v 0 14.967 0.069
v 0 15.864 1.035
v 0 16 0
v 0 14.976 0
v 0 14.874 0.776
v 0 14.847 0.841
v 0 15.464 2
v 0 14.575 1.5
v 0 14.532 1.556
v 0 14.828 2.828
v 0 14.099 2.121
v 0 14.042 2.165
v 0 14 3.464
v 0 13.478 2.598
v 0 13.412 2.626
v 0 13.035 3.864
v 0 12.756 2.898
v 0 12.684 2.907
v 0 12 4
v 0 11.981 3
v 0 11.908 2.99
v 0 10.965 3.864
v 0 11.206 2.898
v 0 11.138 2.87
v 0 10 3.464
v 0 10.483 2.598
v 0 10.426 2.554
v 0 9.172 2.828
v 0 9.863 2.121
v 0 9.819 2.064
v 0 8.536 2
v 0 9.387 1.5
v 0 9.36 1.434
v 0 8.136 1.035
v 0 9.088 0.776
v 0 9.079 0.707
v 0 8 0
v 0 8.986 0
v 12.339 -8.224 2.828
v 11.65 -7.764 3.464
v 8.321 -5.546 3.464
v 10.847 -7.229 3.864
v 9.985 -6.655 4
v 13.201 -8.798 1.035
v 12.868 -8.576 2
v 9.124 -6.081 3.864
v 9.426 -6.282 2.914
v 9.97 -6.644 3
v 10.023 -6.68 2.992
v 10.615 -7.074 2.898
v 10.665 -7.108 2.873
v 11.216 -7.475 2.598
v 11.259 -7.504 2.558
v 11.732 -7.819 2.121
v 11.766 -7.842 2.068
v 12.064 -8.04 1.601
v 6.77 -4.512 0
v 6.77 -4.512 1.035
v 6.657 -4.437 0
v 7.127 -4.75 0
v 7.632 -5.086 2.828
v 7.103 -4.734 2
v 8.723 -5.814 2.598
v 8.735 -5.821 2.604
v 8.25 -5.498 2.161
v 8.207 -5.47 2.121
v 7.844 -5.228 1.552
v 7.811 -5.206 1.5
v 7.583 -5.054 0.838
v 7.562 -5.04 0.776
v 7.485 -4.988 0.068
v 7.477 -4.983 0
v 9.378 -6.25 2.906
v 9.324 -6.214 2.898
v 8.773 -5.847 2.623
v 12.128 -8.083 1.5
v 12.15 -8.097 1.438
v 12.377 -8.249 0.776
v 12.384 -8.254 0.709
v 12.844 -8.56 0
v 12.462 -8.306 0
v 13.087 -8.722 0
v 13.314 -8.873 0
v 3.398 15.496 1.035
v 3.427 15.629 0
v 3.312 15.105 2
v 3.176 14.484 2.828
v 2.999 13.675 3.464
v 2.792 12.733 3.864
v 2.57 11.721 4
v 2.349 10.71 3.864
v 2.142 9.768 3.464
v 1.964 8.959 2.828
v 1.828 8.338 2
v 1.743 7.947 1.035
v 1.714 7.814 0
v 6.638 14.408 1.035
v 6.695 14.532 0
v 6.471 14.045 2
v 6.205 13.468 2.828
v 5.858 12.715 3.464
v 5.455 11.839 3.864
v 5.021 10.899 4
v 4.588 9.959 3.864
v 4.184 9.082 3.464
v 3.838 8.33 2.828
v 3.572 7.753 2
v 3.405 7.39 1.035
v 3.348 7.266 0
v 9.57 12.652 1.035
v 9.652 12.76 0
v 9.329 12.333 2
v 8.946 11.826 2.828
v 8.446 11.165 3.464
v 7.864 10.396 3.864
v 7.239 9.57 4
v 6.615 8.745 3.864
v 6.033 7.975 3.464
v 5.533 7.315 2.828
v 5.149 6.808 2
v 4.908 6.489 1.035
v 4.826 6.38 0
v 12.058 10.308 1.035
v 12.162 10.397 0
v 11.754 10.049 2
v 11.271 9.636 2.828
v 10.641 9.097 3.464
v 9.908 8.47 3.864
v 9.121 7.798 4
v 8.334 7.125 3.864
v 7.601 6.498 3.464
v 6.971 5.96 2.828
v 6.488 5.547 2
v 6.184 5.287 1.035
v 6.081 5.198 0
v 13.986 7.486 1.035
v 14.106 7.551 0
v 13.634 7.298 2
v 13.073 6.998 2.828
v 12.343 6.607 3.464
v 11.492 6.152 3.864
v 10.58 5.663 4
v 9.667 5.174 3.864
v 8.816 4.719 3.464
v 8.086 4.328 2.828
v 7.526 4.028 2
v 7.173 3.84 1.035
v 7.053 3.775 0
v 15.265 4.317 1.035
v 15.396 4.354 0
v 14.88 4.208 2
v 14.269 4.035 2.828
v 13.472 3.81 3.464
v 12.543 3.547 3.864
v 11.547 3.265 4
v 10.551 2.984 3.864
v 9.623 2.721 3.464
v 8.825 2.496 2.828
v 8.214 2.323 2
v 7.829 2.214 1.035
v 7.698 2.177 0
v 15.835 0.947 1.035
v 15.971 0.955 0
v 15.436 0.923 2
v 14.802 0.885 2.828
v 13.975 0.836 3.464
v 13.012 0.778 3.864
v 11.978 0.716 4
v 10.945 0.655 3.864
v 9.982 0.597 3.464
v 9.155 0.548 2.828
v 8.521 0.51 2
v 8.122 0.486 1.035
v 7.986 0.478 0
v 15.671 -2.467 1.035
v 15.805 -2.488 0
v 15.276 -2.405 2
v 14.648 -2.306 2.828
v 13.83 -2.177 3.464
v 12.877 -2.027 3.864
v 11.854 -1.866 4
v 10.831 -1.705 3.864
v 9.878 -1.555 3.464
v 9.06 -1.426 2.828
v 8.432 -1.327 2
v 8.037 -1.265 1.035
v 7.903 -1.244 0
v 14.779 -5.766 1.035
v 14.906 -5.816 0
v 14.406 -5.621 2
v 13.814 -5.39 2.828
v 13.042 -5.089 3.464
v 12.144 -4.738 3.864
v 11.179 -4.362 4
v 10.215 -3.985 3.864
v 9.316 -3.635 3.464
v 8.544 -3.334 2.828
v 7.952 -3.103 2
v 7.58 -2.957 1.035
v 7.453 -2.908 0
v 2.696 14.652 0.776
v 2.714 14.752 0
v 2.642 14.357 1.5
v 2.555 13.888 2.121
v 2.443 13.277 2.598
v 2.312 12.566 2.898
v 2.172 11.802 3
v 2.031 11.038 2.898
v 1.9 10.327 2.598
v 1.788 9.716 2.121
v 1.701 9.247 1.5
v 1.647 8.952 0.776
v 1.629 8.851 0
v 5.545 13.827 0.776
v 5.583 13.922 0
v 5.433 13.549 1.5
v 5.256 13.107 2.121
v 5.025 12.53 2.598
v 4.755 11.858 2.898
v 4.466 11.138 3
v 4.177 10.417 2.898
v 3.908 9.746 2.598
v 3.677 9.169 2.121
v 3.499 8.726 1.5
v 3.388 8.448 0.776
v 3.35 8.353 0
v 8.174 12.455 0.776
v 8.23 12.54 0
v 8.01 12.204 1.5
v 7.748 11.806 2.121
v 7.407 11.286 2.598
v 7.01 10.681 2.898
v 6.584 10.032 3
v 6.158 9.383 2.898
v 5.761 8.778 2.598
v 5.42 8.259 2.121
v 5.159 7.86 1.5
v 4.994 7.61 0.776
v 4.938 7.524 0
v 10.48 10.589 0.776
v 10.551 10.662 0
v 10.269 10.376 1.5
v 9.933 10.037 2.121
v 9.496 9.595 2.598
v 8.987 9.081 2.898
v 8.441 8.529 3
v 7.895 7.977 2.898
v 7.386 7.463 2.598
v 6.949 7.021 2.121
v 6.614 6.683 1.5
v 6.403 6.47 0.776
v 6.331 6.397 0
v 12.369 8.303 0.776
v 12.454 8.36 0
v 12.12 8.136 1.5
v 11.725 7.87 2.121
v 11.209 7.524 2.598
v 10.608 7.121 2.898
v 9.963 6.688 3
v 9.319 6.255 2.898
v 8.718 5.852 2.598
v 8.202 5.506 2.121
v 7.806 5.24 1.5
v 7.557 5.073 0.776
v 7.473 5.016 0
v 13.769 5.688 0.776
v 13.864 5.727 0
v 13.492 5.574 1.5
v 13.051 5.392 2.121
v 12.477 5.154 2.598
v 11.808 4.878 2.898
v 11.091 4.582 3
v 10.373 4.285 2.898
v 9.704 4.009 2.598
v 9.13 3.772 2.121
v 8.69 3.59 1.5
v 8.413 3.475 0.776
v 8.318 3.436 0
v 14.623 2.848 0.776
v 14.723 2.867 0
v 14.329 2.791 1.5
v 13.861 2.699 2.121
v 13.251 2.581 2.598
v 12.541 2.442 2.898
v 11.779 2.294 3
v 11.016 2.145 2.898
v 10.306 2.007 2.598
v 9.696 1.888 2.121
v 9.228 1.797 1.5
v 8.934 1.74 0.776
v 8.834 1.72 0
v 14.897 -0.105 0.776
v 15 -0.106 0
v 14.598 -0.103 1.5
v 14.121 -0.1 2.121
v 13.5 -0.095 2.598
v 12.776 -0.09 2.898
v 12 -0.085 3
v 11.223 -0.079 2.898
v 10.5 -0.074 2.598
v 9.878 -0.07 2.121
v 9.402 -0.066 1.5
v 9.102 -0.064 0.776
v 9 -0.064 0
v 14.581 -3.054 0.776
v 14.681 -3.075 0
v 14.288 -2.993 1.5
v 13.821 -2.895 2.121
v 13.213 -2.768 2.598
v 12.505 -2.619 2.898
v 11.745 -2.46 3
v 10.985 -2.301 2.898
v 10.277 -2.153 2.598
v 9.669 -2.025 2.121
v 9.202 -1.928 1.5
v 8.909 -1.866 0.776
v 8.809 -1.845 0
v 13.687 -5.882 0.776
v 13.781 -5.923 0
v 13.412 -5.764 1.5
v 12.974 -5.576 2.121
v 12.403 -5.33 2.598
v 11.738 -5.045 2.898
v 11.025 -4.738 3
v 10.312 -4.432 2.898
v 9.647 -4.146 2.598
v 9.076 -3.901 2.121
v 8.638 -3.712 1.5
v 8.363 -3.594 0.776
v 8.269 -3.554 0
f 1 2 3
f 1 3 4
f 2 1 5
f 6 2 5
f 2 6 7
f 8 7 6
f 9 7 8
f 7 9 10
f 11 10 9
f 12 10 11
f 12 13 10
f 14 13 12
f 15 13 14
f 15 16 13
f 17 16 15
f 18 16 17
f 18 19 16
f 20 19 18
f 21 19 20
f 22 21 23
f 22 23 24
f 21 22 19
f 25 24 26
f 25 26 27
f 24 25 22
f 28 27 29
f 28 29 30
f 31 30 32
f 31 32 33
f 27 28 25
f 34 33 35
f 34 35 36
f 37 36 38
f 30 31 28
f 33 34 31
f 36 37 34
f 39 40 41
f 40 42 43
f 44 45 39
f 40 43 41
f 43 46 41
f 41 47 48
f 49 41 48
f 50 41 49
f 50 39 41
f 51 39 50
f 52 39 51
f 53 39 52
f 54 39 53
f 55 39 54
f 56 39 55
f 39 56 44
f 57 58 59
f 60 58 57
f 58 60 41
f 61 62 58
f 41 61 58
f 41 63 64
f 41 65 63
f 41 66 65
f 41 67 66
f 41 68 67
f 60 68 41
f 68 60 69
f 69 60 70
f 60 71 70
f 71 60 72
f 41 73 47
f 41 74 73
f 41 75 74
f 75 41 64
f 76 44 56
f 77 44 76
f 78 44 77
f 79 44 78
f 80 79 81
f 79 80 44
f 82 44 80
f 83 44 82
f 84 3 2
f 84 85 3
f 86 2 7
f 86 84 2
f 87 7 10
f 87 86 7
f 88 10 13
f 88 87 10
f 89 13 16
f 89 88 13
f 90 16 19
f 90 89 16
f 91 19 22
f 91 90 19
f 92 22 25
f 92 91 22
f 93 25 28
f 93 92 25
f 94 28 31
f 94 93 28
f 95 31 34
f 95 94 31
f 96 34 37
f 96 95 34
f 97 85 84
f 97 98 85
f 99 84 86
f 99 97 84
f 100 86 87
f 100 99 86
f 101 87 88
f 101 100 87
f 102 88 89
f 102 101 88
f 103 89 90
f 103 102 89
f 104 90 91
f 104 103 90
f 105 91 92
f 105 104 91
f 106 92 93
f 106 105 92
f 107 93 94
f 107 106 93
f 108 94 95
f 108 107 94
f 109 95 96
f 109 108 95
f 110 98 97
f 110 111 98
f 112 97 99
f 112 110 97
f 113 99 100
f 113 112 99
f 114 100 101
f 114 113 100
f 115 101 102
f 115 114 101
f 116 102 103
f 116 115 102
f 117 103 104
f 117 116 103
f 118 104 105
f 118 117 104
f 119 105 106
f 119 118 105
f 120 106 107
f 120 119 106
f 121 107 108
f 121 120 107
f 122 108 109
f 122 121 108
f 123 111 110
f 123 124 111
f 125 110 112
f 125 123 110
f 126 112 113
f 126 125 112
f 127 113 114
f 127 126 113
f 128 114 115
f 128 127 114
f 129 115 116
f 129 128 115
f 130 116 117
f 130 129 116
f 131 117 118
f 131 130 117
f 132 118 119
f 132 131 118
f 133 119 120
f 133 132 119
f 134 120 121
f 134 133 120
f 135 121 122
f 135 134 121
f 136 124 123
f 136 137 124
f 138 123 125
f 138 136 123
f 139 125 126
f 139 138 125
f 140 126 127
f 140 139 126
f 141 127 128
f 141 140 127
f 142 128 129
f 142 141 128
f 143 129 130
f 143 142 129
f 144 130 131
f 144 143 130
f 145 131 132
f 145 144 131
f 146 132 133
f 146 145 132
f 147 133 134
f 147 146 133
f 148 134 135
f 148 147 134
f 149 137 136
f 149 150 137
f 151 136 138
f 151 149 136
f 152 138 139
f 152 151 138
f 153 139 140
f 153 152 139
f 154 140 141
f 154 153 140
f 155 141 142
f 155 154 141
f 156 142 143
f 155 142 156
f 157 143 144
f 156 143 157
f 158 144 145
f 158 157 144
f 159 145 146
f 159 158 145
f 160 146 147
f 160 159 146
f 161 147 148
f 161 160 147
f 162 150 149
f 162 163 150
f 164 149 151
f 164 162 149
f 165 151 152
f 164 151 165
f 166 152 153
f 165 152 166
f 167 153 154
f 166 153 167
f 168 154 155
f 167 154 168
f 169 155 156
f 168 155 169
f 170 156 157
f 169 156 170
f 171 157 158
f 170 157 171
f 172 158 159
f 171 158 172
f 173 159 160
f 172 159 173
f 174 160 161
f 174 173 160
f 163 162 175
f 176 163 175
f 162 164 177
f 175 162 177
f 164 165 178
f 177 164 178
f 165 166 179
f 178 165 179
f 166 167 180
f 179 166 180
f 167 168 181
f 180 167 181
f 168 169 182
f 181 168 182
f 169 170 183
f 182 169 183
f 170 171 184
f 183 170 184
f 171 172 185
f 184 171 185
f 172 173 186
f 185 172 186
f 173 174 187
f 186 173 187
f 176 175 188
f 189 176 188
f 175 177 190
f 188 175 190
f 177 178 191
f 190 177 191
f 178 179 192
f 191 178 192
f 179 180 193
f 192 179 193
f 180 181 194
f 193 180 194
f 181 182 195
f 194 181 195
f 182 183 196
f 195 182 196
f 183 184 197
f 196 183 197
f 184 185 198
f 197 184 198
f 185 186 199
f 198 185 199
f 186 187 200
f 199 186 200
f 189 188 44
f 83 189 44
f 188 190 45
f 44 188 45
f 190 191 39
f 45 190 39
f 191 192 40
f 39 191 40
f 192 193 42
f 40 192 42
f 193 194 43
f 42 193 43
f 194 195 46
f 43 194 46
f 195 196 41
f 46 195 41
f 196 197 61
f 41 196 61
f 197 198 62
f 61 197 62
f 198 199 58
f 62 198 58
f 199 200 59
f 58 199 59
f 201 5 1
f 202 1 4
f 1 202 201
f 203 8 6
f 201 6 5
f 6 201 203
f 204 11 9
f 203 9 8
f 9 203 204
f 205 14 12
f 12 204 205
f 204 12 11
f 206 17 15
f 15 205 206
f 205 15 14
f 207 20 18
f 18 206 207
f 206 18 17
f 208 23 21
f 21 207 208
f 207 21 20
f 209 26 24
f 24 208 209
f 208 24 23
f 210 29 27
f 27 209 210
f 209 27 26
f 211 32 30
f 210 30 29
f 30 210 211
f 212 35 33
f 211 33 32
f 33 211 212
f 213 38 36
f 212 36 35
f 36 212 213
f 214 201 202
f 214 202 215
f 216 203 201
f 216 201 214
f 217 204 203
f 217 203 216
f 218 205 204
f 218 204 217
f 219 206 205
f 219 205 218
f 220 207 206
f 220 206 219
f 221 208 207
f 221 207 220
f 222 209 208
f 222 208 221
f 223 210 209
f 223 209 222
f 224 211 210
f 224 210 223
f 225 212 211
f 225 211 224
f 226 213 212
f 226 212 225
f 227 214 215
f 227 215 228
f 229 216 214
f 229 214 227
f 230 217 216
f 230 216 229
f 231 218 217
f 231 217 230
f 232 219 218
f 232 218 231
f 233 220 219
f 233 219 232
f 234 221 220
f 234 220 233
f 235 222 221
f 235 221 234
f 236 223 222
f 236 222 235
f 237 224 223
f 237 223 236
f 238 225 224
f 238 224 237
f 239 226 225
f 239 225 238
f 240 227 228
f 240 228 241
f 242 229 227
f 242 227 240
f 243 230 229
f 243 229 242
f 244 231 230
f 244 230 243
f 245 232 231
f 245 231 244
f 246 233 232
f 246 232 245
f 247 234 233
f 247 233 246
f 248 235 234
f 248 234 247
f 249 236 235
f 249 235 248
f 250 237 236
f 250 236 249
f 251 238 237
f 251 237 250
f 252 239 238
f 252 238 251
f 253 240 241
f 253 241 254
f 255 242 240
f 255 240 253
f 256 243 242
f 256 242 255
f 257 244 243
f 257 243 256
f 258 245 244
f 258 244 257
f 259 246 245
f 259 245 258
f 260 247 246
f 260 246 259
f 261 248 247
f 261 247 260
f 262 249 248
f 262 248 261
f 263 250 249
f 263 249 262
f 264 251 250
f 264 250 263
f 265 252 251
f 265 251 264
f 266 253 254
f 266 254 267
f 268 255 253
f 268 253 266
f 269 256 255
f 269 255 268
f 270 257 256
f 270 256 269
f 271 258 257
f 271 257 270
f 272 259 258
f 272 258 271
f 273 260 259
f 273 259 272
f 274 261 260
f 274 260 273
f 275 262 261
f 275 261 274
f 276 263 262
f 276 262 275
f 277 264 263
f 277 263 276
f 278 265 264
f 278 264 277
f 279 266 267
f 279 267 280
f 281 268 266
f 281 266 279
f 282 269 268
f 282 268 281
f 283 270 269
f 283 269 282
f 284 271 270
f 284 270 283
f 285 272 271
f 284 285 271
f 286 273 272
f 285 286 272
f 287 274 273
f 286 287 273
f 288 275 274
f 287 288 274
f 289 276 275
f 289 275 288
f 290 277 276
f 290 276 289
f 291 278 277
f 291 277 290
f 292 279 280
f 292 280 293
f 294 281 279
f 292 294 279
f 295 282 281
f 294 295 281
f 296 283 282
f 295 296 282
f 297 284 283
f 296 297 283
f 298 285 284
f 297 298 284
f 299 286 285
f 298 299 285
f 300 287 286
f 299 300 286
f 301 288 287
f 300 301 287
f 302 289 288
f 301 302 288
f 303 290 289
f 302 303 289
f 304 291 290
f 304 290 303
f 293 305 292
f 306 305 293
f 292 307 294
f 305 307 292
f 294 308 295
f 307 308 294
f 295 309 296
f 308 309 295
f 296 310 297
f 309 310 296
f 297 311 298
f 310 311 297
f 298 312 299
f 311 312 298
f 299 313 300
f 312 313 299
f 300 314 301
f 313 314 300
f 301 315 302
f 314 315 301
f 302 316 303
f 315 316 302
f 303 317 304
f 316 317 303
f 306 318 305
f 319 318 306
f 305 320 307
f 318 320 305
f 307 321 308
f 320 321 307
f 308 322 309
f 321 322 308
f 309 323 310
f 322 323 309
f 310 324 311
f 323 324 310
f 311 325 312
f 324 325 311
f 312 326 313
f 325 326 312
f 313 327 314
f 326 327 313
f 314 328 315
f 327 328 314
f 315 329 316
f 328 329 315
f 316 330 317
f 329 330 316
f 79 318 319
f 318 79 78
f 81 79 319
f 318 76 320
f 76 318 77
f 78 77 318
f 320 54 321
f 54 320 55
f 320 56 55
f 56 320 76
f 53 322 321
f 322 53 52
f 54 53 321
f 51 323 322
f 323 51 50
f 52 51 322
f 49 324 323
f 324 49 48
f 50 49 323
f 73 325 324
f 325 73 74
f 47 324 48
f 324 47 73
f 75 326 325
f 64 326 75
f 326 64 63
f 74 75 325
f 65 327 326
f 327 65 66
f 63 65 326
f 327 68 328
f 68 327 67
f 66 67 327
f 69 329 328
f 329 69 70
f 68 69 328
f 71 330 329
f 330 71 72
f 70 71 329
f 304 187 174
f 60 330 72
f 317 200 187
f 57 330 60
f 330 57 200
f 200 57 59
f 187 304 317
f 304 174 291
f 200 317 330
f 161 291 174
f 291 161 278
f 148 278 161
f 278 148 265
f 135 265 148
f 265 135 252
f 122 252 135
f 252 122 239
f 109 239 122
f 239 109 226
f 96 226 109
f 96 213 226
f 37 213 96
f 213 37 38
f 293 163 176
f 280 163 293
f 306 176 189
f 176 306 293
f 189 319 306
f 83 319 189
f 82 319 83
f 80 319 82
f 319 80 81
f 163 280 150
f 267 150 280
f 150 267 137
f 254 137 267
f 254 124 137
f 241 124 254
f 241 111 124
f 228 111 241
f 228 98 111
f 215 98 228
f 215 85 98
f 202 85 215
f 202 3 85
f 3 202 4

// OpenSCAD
// file: ../build_environments.scad
// build_environments.scad: modules to build level sections
//

module pool(diameter=10.0, wall_height=2.0, step_width=3.0, connections=[])
{
    difference() {
        union() {
        difference() {
            cylinder(h=0.5,r1=diameter+step_width,r2=diameter+step_width,$fn=48);
            translate([0,0,-0.1])
                cylinder(h=0.7,r1=diameter,r2=diameter,$fn=48);
        }
        difference() {
            cylinder(h=wall_height,r1=diameter+step_width+1.0,r2=diameter+step_width+1.0,$fn=48);
            translate([0,0,-0.1])
                cylinder(h=wall_height+0.2,r1=diameter+step_width,r2=diameter+step_width,$fn=48);
        }
        }
    
        for (c = connections)
        {
            rotate([0,90,0]) {
                angle = atan2(c[1],c[0]);
                rotate([-angle,0,0]) {
                    cylinder(h=diameter+5.0,r1=c[2],r2=c[2],$fn=48);
                }
            }
        }
    }
}

module straight(length=10.0, width=2.0, dy1=0.0, dy2=0.0, dz=0.0)
{
    dims = [0, 0, 0, 0, 0, (dz/length)];
    matrix = [
        [ 1, dims[0], dims[1], 0 ],
        [ dims[2], 1, dims[4], 0 ],
        [ dims[5], dims[3], 1, 0 ],
        [ 0, 0, 0, 1 ]
    ];
    multmatrix(matrix)
    difference() {
        translate([dy1,0,0])
        union() {
            rotate([0,90,0]) {
                difference() {
                    cylinder(h=(length-dy1-dy2),r1=width+1.0,r2=width+1.0,$fn=24);
                    translate([0,0,-0.1])
                        cylinder(h=(length-dy1-dy2+0.2),r1=width,r2=width,$fn=24);
                }
                difference() {
                    cylinder(h=1.0,r1=width+2.0,r2=width+2.0,$fn=24);
                    translate([0,0,-0.1])
                        cylinder(h=1.2,r1=width,r2=width,$fn=24);
                }
                translate([0,0,(length-dy1-dy2)-1.0]) {
                    difference() {
                        cylinder(h=1.0,r1=width+2.0,r2=width+2.0,$fn=24);
                        translate([0,0,-0.1])
                            cylinder(h=1.2,r1=width,r2=width,$fn=24);
                    }
                }
            }
        }
        translate([0,0,-(2*width+4.0)/2])
            cube([3*length,3*length,2*width+4.0],center=true);
    }
}

module curve(p0=[0,0], center=[0,0], dir=1, angle=0.0, width=2.0)
{
    radius = sqrt((p0[0]-center[0])*(p0[0]-center[0]) + (p0[1]-center[1])*(p0[1]-center[1]));
    if (dir == 0) {
        difference() {
            rotate([0,0,-90])
            difference() {
                rotate_extrude(angle = angle, convexity = 10, $fn=32)
                    translate([radius, 0, 0])
                        circle(r = width+1.0,$fn=24);
                rotate([0,0,-1.0])
                    rotate_extrude(angle = angle+2.0, convexity = 10, $fn=32)
                        translate([radius, 0, 0])
                            circle(r = width,$fn=24);
            }
            translate([0,0,-(2*width+4.0)/2])
                cube([5*radius,5*radius,2*width+4.0],center=true);
        }
    }
    else {
        difference() {
            rotate([0,0,90])
            difference() {
                rotate_extrude(angle = -angle, convexity = 10, $fn=32)
                    translate([radius, 0, 0])
                        circle(r = width+1.0,$fn=24);
                rotate([0,0,1.0])
                    rotate_extrude(angle = -angle-2.0, convexity = 10, $fn=32)
                        translate([radius, 0, 0])
                            circle(r = width,$fn=24);
            }
            translate([0,0,-(2*width+4.0)/2])
                cube([5*radius,5*radius,2*width+4.0],center=true);
        }
    }

}

// test pool
//pool(diameter=12.0000, wall_height=3.0000, step_width=3.0000, connections=[[0.0000,-26.0000,2.0000], [23.6074,0.0000,2.0000]]);

// test straight, slope
//straight(length=26.0000, width=2.0000, dy1=11.8322, dy2=6.7082, dz=0.0000);
//straight(length=29.1549, width=12.0000, dy1=0.0000, dy2=0.0000, dz=-15.0000);

// test curve
//curve(p0=[23.6074, 0.0000], center=[23.6074, 5.0000], dir=0, angle=60.1011, width=2.0000);
//curve(p0=[33.6426, 12.4219], center=[37.9771, 9.9295], dir=1, angle=120.4627, width=2.0000);
// main file
use <../build_environments.scad>;
curve(p0=[16.5436, -73.7834], center=[27.1174, -68.1095], dir=1, angle=123.6822, width=3.0000);
